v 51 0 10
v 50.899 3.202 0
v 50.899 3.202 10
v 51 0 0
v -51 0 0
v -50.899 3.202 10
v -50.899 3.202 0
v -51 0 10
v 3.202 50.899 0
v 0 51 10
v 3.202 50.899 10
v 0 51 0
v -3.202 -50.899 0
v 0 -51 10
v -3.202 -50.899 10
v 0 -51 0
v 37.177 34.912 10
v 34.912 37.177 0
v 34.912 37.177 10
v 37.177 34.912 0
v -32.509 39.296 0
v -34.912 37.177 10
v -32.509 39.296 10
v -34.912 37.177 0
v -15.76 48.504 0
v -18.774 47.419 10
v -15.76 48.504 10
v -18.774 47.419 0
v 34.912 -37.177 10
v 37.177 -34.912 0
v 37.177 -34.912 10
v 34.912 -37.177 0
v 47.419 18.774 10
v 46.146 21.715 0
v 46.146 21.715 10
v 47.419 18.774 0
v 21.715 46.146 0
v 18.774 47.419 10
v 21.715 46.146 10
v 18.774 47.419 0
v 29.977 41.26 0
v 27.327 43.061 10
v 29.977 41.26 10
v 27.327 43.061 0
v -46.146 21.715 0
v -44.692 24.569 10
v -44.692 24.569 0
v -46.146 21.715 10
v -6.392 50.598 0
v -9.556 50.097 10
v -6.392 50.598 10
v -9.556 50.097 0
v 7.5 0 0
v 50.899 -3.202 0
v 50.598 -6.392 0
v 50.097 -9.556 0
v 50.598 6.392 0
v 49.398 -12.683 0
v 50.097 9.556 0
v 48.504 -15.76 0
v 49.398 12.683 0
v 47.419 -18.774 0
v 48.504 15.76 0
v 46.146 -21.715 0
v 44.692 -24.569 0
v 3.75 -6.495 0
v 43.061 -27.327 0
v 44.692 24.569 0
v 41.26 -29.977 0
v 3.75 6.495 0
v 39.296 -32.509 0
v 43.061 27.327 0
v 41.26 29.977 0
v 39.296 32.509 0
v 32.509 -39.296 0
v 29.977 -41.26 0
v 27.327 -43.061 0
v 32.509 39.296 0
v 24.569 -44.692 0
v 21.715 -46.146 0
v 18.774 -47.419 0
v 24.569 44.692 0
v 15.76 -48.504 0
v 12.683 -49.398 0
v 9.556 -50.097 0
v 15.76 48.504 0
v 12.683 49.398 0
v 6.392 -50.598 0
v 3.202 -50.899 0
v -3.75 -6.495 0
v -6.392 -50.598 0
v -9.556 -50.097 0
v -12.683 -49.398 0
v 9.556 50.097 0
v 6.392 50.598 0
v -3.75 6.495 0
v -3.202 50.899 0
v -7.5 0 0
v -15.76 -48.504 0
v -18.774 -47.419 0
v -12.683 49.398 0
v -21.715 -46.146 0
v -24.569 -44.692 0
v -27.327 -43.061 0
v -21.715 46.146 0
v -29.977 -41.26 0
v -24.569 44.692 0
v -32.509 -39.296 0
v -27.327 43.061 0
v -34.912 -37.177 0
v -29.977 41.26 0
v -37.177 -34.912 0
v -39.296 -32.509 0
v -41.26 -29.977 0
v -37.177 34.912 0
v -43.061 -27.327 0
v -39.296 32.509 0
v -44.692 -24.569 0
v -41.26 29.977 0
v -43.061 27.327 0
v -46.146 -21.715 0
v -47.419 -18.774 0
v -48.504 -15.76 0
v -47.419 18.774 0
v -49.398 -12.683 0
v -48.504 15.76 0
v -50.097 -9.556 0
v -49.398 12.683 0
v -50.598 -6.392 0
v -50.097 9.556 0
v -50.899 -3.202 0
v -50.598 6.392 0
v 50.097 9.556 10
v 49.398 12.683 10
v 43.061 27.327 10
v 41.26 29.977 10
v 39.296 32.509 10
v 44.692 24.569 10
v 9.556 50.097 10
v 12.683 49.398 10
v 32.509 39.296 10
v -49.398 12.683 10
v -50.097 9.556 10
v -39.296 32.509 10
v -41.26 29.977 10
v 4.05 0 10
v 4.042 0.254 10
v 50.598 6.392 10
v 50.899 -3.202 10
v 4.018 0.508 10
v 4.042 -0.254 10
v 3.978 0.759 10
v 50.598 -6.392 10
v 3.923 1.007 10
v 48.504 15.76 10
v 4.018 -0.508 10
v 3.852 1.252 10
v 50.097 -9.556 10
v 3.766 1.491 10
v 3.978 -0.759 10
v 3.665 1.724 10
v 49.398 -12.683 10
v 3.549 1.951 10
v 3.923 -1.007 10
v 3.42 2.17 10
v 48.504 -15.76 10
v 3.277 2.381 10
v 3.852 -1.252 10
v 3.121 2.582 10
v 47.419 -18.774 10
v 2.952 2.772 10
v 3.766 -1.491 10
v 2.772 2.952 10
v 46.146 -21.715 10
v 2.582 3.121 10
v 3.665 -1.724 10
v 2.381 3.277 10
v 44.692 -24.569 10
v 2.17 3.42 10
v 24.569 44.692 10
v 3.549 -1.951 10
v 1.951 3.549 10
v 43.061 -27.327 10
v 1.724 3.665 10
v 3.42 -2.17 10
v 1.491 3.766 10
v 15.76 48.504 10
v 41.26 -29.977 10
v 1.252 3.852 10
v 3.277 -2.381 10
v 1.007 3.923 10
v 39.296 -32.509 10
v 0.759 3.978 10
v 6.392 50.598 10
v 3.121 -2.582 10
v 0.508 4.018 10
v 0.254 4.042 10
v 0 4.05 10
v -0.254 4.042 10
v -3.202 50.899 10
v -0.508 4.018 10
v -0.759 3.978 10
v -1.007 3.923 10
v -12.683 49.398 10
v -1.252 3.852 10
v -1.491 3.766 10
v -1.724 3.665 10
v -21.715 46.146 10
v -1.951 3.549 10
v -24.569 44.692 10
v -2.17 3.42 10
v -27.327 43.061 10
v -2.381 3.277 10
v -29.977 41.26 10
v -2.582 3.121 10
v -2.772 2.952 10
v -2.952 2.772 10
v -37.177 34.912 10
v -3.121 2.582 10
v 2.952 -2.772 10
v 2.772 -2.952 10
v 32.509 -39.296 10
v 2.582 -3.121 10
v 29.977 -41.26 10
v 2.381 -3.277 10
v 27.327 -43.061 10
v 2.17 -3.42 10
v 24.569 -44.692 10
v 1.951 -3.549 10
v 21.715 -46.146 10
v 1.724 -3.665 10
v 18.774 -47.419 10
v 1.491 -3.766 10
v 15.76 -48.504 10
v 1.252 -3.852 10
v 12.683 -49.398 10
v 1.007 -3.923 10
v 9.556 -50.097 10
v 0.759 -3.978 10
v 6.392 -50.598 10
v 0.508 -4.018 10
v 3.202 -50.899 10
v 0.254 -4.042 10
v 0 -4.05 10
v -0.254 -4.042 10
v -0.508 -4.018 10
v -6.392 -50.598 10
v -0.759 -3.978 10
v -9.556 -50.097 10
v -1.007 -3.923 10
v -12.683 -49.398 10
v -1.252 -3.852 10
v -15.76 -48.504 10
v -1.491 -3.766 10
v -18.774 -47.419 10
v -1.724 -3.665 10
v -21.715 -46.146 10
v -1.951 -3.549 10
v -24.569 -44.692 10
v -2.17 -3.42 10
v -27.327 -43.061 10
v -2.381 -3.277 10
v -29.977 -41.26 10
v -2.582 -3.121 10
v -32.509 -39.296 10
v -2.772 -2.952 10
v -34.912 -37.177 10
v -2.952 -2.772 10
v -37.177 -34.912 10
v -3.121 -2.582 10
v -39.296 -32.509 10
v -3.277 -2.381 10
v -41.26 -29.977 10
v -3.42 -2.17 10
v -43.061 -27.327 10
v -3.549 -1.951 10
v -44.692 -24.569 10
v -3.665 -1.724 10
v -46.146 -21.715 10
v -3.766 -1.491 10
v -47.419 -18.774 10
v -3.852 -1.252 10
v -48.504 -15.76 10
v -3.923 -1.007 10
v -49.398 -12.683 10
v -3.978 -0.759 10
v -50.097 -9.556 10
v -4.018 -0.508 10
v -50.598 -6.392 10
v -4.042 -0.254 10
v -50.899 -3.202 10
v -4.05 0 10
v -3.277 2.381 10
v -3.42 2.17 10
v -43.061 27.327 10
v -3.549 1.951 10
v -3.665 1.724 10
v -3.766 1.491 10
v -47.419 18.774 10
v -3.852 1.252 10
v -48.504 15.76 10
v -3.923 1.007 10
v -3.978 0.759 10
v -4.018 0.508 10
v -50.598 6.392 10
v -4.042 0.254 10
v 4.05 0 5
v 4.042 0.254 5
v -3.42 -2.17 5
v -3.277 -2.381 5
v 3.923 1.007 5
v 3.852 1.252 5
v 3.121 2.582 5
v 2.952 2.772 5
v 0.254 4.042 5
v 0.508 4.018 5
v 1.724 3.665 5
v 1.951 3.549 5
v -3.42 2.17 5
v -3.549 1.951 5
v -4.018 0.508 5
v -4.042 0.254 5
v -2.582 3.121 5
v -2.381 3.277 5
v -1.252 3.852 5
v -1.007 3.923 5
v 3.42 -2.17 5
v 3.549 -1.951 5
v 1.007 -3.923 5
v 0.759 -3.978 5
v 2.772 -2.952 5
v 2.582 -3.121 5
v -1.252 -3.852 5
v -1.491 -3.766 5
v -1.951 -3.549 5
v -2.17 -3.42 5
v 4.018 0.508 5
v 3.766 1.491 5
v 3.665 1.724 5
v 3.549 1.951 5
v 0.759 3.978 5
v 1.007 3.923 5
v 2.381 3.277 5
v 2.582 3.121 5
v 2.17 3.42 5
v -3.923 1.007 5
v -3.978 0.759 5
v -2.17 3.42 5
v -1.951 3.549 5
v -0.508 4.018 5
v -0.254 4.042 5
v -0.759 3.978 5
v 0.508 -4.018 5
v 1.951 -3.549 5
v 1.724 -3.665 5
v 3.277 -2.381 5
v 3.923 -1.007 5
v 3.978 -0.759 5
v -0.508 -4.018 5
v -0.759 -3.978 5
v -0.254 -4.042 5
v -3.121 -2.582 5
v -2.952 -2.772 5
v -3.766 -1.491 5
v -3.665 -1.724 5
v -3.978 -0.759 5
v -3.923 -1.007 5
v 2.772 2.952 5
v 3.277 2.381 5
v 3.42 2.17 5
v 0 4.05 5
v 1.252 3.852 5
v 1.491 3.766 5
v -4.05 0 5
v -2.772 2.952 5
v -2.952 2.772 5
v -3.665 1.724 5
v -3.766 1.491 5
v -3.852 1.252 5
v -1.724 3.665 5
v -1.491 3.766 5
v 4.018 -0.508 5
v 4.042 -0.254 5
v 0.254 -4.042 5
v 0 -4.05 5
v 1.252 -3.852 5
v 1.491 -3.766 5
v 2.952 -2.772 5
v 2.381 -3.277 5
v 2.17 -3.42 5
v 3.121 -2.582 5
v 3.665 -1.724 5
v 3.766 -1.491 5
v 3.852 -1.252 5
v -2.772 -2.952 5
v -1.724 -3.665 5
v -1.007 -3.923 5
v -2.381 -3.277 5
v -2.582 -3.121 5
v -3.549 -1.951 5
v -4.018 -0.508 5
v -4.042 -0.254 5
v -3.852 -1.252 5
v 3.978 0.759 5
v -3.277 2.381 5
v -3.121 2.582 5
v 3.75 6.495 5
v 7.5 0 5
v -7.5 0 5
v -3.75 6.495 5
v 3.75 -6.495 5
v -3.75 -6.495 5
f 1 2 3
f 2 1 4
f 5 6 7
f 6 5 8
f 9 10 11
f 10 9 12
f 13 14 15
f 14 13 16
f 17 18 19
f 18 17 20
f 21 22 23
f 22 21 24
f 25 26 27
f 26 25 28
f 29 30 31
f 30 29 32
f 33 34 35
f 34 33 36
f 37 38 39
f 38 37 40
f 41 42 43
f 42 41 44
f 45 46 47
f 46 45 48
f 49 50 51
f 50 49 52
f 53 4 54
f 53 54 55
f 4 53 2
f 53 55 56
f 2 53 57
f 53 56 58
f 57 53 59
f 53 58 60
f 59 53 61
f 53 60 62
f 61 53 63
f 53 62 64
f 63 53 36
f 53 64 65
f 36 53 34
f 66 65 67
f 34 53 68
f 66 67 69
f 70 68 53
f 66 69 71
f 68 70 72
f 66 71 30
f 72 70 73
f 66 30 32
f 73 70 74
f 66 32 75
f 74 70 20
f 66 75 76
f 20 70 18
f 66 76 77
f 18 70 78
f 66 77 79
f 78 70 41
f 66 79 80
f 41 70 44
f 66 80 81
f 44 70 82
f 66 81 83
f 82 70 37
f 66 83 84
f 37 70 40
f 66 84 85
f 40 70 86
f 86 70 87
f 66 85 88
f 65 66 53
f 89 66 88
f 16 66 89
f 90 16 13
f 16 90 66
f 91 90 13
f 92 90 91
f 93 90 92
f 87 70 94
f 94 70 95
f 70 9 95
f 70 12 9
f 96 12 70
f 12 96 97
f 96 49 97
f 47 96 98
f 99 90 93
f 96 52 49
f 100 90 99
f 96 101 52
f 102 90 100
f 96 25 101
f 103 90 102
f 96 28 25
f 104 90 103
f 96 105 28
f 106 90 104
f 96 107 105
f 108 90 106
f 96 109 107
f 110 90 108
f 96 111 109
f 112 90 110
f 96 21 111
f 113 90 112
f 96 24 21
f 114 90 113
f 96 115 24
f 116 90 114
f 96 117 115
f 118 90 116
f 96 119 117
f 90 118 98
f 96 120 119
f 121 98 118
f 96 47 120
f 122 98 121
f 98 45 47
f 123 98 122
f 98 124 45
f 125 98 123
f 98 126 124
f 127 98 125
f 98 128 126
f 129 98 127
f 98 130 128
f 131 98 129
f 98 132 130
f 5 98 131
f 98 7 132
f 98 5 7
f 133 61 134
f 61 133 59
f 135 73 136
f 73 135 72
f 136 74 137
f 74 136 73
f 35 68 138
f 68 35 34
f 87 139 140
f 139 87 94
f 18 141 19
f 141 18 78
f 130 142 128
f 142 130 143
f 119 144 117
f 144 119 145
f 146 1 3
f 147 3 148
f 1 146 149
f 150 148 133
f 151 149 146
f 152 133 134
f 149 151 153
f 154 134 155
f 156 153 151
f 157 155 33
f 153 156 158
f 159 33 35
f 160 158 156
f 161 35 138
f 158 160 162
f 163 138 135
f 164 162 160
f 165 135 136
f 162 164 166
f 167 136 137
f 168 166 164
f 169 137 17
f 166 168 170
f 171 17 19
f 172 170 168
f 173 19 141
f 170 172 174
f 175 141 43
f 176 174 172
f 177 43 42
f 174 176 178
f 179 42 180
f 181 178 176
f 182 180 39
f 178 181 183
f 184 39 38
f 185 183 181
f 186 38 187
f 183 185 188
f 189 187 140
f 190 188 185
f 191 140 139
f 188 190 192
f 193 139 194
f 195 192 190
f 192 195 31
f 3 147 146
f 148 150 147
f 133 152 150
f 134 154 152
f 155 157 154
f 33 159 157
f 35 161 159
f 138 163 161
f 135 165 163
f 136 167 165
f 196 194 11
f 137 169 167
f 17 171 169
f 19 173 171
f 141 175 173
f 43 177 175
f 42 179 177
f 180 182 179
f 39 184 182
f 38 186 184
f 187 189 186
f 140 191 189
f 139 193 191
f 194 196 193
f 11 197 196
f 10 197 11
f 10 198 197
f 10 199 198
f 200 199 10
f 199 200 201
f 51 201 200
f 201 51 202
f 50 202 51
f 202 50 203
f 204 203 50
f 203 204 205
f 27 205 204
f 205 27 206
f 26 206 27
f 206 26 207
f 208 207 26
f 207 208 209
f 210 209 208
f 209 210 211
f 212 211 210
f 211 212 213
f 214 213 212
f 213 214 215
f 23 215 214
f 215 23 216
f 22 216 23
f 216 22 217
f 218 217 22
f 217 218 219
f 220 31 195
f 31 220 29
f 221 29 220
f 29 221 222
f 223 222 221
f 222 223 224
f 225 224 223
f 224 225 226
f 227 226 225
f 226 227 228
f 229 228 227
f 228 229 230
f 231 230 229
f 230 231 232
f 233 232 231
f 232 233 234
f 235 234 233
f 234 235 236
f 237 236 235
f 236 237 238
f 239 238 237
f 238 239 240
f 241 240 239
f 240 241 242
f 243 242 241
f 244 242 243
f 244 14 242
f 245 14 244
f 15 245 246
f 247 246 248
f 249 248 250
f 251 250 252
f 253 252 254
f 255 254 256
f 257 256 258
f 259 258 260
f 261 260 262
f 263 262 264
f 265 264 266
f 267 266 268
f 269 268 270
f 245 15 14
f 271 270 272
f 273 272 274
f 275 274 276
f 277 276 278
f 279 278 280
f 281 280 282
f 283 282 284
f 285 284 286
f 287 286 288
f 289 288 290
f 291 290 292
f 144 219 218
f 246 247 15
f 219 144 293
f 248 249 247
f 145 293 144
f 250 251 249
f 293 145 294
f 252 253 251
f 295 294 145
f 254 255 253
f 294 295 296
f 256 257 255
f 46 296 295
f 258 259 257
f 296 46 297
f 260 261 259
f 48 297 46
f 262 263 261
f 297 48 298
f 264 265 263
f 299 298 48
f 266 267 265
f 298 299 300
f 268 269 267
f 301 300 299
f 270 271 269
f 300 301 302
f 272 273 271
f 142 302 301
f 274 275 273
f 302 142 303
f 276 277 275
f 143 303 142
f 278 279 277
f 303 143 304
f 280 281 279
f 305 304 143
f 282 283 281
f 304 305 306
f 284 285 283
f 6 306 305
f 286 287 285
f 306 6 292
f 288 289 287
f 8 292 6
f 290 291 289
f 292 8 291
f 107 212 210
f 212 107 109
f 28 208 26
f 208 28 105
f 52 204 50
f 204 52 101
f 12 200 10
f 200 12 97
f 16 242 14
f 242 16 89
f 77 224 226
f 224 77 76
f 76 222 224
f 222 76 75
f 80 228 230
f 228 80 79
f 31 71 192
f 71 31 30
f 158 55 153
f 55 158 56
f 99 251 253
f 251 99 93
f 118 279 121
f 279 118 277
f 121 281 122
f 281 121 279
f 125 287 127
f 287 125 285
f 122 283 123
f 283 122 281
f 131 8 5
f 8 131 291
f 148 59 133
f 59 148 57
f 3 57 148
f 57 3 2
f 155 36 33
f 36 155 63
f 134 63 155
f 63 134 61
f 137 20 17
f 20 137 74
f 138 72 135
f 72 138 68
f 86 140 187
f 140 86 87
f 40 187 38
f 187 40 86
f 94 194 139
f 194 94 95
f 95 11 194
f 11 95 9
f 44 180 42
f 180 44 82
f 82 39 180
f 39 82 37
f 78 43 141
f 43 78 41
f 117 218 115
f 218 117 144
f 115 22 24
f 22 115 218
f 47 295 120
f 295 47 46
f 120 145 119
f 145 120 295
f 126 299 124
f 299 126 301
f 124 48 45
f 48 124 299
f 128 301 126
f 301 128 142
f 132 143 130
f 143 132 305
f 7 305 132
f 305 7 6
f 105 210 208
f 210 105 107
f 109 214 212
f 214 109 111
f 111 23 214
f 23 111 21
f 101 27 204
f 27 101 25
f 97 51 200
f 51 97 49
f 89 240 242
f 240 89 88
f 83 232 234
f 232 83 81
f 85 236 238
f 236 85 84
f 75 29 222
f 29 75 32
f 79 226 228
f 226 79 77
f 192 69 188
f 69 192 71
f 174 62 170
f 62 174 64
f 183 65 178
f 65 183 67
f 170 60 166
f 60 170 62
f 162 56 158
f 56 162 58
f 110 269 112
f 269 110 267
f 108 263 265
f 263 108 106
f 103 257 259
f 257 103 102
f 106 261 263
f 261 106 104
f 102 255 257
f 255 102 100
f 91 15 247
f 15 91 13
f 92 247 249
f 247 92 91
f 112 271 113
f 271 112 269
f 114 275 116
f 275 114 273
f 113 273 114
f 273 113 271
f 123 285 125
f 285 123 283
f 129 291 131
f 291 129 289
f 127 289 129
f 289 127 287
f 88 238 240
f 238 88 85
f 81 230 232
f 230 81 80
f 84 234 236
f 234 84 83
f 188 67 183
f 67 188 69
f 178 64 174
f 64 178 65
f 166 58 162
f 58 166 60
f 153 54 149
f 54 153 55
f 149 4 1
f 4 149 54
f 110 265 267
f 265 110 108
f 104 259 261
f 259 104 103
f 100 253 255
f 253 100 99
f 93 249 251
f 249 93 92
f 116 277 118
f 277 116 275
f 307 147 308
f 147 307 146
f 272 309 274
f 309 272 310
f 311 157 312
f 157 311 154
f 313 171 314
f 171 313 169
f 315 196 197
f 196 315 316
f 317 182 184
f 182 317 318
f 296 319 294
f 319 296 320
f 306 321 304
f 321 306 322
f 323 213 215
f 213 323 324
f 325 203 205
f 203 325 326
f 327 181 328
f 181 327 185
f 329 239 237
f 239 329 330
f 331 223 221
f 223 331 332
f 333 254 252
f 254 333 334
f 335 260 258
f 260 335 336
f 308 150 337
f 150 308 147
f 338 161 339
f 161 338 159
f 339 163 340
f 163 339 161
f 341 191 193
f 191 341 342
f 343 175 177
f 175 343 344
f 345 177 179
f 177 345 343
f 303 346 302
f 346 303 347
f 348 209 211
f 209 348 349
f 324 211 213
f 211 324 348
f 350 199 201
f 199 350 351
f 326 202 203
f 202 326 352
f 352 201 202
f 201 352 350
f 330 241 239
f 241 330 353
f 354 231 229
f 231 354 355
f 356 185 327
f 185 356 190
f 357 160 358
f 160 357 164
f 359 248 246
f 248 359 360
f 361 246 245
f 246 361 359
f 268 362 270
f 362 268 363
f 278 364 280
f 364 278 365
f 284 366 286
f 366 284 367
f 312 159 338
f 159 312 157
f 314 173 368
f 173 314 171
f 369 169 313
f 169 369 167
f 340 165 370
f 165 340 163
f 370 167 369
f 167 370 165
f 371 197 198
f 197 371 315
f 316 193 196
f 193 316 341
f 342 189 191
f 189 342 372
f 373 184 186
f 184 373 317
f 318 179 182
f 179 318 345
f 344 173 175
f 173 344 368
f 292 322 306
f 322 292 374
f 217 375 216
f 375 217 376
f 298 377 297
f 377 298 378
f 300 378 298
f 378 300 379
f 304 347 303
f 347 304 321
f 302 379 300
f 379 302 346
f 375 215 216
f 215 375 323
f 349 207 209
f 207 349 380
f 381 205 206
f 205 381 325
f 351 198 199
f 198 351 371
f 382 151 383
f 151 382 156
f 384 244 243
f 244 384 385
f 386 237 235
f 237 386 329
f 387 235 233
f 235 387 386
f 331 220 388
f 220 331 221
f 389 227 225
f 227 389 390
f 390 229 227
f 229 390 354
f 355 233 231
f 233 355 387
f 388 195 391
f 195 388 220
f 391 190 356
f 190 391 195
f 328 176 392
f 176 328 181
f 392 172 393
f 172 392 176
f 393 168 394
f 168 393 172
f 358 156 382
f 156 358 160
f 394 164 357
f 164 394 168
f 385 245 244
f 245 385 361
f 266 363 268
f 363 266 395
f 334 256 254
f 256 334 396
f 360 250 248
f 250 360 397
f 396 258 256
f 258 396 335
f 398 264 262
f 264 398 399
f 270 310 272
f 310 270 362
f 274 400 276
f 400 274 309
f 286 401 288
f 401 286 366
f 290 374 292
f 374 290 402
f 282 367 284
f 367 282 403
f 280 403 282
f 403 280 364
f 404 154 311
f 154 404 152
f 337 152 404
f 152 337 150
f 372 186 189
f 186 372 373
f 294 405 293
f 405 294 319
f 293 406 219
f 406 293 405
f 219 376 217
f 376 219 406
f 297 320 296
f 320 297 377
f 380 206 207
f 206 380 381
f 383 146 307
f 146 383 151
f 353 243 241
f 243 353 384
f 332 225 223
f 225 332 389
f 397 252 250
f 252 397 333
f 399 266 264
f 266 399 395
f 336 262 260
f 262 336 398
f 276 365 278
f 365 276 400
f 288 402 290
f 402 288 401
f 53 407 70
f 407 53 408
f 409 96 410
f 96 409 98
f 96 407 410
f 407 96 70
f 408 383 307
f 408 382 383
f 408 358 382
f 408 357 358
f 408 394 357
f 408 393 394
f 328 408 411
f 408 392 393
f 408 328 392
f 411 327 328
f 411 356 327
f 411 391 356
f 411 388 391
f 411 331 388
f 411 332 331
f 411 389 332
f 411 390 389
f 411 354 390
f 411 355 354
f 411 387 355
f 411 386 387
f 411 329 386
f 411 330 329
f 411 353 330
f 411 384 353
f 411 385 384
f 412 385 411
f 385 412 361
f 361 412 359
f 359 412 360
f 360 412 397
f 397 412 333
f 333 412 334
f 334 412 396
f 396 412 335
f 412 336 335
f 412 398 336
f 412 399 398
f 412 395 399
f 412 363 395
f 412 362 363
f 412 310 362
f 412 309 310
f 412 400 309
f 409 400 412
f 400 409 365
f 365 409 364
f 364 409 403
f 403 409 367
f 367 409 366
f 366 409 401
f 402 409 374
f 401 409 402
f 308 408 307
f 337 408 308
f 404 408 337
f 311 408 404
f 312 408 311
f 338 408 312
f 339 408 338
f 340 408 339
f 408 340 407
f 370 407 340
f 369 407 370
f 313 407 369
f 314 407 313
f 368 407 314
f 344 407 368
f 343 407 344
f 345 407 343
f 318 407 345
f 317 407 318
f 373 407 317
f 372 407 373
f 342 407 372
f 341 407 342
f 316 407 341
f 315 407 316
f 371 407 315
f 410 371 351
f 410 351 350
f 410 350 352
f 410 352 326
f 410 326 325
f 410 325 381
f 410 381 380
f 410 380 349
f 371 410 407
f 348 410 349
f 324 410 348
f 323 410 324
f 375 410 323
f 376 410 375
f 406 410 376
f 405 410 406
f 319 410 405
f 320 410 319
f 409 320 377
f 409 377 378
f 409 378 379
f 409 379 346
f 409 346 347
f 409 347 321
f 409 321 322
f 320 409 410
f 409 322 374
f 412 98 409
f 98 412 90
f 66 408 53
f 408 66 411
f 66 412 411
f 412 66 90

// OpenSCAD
/*

Cardboard tube center for making cat trees
@idnorton
2022-07-24

Licenced as Creative Commons Attribution Non Commercial 3.0
See https://creativecommons.org/licenses/by-nc/3.0/

Specifically you may not sell the design or products using the design.
You're welcome to use the design to build things for your own commercial environment

*/

// Cardboard tube center
tube_insert_d = 102;
tube_insert_h = 10;

// Bolt dimensions
bolt_diameter = 8;
bolt_head = 15;


difference() {
    // Main body of insert
    cylinder(tube_insert_h, d=tube_insert_d, $fn=100);

    // Hole through the middle
    cylinder(tube_insert_h, d=(bolt_diameter + 0.1), $fn=100);

    // Bolt head clearance
    cylinder(tube_insert_h/2, bolt_head/2, bolt_head/2, $fn=6);
}
